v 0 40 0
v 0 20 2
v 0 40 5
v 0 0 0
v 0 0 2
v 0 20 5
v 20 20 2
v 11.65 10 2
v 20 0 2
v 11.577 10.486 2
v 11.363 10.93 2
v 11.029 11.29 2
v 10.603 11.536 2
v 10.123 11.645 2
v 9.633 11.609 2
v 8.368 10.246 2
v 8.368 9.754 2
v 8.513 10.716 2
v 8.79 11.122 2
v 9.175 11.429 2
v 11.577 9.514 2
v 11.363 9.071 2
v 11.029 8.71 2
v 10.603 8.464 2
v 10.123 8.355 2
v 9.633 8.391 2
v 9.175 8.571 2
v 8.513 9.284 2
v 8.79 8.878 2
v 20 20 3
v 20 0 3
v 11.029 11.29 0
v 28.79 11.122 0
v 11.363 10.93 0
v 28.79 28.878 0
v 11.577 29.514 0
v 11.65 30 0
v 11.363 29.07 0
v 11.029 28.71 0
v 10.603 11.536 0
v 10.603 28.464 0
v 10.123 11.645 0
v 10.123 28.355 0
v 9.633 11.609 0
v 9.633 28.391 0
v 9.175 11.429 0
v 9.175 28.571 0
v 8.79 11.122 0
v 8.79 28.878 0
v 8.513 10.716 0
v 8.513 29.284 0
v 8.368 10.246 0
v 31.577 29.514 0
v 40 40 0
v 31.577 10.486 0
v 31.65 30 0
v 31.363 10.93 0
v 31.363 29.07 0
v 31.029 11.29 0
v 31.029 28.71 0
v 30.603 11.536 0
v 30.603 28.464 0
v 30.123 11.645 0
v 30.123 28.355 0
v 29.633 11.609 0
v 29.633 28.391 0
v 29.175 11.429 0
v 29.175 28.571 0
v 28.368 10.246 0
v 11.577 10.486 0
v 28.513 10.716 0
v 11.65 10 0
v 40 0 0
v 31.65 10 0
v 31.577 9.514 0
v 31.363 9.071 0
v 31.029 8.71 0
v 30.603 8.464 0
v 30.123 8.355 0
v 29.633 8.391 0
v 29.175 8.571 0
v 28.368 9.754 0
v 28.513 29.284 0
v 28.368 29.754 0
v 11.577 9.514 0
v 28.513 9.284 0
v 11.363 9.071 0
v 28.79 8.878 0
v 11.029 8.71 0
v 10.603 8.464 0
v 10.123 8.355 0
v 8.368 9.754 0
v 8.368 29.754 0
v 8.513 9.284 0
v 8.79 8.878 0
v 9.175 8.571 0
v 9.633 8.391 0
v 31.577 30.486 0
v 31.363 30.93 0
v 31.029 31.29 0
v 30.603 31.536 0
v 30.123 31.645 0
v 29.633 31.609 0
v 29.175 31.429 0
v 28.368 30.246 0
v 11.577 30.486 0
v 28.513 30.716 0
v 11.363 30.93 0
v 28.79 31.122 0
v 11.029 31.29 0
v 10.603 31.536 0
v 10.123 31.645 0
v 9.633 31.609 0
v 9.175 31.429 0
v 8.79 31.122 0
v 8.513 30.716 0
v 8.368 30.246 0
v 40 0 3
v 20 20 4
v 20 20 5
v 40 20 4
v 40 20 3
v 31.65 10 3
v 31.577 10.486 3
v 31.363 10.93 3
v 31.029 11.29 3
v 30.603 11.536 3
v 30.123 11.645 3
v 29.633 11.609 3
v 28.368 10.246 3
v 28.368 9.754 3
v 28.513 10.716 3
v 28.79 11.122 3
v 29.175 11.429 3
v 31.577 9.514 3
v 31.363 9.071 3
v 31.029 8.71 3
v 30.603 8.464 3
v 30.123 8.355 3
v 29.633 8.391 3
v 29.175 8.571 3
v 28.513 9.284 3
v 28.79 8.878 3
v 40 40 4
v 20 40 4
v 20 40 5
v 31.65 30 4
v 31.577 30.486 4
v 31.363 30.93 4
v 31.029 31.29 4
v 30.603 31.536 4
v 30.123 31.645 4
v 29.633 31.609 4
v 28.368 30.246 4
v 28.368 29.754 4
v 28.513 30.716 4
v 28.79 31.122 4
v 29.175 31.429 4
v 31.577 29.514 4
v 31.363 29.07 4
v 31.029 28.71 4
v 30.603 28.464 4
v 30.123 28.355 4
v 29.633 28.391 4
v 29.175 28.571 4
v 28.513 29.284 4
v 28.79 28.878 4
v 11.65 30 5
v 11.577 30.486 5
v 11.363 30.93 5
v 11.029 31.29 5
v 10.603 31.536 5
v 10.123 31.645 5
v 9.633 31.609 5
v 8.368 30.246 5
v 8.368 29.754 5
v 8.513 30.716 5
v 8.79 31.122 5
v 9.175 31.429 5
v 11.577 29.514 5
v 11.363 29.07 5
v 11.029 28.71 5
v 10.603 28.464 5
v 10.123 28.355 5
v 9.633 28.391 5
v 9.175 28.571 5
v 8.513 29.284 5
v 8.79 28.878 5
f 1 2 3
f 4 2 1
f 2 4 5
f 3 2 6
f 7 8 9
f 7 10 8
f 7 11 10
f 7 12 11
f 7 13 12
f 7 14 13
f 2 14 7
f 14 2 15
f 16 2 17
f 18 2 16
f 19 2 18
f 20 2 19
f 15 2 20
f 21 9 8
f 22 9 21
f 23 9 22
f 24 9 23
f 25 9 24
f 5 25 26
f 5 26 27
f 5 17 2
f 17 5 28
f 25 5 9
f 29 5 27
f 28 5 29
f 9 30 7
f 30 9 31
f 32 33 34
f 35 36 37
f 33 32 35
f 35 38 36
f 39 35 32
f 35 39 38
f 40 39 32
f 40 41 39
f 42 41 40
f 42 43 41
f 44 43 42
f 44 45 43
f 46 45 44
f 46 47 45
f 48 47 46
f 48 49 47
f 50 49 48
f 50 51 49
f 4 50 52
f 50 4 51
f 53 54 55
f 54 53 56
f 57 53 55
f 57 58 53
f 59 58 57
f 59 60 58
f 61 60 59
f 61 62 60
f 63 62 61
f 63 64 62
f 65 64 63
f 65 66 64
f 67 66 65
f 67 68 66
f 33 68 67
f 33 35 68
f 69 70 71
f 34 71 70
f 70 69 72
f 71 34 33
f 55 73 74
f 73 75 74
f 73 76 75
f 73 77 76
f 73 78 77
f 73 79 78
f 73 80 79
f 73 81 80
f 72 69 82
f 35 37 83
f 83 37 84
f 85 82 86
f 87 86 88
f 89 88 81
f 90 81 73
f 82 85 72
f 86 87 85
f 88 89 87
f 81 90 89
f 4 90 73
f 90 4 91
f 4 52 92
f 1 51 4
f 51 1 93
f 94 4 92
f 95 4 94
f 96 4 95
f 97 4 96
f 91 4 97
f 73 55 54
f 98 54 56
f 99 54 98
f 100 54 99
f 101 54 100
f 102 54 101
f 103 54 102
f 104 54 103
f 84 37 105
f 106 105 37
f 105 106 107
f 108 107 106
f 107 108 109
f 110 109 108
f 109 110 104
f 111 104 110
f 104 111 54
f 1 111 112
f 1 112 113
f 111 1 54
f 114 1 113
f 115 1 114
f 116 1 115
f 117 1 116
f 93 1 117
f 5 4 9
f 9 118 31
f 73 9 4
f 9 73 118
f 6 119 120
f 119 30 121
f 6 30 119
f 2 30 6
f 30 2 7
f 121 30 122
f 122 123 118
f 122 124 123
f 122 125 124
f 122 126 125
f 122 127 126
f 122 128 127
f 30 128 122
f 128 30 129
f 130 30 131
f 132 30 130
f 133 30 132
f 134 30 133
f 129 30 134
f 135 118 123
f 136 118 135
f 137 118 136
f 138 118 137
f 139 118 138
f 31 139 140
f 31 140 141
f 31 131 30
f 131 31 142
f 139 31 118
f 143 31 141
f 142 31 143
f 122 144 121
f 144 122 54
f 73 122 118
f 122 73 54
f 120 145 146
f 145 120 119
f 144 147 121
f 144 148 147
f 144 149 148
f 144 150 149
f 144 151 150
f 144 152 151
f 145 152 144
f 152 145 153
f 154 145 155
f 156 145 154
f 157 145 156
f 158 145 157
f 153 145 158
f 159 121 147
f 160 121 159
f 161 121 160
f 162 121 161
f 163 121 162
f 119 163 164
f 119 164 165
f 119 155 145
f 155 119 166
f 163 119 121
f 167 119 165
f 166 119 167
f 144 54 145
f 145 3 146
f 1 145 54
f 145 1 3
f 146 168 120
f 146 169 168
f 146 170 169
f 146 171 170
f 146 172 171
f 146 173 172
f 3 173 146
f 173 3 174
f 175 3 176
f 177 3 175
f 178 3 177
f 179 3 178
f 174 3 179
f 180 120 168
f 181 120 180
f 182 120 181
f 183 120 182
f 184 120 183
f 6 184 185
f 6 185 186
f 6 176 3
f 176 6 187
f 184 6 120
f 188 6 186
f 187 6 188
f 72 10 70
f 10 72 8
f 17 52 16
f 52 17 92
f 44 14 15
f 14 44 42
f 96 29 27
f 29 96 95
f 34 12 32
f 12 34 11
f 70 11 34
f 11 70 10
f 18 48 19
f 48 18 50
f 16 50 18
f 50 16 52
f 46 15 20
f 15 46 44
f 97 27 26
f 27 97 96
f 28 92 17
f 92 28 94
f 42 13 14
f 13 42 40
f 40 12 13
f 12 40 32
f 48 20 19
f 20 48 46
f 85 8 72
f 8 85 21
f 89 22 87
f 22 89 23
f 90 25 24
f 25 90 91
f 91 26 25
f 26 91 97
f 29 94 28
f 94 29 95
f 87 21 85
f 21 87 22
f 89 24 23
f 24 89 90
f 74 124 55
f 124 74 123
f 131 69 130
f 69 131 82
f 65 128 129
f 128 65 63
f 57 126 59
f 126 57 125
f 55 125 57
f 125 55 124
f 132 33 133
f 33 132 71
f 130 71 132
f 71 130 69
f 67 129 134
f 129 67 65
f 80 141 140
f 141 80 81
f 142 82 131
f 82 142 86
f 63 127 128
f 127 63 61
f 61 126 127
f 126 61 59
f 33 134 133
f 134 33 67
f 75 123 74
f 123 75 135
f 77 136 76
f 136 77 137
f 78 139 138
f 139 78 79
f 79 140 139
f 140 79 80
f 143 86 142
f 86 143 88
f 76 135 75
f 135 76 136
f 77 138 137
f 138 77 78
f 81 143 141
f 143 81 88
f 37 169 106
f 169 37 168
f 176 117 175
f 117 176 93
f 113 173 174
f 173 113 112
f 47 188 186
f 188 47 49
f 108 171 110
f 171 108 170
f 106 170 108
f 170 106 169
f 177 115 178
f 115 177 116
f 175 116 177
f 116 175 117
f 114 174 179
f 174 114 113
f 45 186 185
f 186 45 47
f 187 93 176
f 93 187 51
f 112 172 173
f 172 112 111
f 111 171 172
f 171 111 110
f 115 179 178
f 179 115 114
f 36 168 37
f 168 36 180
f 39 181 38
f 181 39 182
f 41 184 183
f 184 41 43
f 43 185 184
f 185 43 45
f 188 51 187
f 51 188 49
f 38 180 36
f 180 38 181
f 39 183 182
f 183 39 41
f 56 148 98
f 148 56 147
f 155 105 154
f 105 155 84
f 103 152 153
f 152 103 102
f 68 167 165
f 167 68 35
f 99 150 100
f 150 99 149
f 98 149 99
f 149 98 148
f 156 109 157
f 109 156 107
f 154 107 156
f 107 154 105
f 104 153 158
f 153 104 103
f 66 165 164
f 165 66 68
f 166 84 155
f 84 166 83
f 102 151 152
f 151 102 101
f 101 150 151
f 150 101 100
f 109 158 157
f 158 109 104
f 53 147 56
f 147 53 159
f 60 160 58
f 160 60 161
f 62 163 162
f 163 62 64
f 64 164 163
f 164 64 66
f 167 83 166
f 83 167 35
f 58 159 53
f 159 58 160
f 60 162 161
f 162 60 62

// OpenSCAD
// test_squares.scad
$fs = 0.5;

rivet_diam = 3.3;

difference() {
	union() {
		cube(size=[20,20,2]);
		translate(v=[20,0,0]) cube(size=[20,20,3]);
		translate(v=[20,20,0]) cube(size=[20,20,4]);
		translate(v=[0,20,0]) cube(size=[20,20,5]);
	}
	translate(v=[10,10,-.2]) cylinder(h=6,d=rivet_diam);
	translate(v=[30,10,-.2]) cylinder(h=6,d=rivet_diam);
	translate(v=[10,30,-.2]) cylinder(h=6,d=rivet_diam);
	translate(v=[30,30,-.2]) cylinder(h=6,d=rivet_diam);
}
